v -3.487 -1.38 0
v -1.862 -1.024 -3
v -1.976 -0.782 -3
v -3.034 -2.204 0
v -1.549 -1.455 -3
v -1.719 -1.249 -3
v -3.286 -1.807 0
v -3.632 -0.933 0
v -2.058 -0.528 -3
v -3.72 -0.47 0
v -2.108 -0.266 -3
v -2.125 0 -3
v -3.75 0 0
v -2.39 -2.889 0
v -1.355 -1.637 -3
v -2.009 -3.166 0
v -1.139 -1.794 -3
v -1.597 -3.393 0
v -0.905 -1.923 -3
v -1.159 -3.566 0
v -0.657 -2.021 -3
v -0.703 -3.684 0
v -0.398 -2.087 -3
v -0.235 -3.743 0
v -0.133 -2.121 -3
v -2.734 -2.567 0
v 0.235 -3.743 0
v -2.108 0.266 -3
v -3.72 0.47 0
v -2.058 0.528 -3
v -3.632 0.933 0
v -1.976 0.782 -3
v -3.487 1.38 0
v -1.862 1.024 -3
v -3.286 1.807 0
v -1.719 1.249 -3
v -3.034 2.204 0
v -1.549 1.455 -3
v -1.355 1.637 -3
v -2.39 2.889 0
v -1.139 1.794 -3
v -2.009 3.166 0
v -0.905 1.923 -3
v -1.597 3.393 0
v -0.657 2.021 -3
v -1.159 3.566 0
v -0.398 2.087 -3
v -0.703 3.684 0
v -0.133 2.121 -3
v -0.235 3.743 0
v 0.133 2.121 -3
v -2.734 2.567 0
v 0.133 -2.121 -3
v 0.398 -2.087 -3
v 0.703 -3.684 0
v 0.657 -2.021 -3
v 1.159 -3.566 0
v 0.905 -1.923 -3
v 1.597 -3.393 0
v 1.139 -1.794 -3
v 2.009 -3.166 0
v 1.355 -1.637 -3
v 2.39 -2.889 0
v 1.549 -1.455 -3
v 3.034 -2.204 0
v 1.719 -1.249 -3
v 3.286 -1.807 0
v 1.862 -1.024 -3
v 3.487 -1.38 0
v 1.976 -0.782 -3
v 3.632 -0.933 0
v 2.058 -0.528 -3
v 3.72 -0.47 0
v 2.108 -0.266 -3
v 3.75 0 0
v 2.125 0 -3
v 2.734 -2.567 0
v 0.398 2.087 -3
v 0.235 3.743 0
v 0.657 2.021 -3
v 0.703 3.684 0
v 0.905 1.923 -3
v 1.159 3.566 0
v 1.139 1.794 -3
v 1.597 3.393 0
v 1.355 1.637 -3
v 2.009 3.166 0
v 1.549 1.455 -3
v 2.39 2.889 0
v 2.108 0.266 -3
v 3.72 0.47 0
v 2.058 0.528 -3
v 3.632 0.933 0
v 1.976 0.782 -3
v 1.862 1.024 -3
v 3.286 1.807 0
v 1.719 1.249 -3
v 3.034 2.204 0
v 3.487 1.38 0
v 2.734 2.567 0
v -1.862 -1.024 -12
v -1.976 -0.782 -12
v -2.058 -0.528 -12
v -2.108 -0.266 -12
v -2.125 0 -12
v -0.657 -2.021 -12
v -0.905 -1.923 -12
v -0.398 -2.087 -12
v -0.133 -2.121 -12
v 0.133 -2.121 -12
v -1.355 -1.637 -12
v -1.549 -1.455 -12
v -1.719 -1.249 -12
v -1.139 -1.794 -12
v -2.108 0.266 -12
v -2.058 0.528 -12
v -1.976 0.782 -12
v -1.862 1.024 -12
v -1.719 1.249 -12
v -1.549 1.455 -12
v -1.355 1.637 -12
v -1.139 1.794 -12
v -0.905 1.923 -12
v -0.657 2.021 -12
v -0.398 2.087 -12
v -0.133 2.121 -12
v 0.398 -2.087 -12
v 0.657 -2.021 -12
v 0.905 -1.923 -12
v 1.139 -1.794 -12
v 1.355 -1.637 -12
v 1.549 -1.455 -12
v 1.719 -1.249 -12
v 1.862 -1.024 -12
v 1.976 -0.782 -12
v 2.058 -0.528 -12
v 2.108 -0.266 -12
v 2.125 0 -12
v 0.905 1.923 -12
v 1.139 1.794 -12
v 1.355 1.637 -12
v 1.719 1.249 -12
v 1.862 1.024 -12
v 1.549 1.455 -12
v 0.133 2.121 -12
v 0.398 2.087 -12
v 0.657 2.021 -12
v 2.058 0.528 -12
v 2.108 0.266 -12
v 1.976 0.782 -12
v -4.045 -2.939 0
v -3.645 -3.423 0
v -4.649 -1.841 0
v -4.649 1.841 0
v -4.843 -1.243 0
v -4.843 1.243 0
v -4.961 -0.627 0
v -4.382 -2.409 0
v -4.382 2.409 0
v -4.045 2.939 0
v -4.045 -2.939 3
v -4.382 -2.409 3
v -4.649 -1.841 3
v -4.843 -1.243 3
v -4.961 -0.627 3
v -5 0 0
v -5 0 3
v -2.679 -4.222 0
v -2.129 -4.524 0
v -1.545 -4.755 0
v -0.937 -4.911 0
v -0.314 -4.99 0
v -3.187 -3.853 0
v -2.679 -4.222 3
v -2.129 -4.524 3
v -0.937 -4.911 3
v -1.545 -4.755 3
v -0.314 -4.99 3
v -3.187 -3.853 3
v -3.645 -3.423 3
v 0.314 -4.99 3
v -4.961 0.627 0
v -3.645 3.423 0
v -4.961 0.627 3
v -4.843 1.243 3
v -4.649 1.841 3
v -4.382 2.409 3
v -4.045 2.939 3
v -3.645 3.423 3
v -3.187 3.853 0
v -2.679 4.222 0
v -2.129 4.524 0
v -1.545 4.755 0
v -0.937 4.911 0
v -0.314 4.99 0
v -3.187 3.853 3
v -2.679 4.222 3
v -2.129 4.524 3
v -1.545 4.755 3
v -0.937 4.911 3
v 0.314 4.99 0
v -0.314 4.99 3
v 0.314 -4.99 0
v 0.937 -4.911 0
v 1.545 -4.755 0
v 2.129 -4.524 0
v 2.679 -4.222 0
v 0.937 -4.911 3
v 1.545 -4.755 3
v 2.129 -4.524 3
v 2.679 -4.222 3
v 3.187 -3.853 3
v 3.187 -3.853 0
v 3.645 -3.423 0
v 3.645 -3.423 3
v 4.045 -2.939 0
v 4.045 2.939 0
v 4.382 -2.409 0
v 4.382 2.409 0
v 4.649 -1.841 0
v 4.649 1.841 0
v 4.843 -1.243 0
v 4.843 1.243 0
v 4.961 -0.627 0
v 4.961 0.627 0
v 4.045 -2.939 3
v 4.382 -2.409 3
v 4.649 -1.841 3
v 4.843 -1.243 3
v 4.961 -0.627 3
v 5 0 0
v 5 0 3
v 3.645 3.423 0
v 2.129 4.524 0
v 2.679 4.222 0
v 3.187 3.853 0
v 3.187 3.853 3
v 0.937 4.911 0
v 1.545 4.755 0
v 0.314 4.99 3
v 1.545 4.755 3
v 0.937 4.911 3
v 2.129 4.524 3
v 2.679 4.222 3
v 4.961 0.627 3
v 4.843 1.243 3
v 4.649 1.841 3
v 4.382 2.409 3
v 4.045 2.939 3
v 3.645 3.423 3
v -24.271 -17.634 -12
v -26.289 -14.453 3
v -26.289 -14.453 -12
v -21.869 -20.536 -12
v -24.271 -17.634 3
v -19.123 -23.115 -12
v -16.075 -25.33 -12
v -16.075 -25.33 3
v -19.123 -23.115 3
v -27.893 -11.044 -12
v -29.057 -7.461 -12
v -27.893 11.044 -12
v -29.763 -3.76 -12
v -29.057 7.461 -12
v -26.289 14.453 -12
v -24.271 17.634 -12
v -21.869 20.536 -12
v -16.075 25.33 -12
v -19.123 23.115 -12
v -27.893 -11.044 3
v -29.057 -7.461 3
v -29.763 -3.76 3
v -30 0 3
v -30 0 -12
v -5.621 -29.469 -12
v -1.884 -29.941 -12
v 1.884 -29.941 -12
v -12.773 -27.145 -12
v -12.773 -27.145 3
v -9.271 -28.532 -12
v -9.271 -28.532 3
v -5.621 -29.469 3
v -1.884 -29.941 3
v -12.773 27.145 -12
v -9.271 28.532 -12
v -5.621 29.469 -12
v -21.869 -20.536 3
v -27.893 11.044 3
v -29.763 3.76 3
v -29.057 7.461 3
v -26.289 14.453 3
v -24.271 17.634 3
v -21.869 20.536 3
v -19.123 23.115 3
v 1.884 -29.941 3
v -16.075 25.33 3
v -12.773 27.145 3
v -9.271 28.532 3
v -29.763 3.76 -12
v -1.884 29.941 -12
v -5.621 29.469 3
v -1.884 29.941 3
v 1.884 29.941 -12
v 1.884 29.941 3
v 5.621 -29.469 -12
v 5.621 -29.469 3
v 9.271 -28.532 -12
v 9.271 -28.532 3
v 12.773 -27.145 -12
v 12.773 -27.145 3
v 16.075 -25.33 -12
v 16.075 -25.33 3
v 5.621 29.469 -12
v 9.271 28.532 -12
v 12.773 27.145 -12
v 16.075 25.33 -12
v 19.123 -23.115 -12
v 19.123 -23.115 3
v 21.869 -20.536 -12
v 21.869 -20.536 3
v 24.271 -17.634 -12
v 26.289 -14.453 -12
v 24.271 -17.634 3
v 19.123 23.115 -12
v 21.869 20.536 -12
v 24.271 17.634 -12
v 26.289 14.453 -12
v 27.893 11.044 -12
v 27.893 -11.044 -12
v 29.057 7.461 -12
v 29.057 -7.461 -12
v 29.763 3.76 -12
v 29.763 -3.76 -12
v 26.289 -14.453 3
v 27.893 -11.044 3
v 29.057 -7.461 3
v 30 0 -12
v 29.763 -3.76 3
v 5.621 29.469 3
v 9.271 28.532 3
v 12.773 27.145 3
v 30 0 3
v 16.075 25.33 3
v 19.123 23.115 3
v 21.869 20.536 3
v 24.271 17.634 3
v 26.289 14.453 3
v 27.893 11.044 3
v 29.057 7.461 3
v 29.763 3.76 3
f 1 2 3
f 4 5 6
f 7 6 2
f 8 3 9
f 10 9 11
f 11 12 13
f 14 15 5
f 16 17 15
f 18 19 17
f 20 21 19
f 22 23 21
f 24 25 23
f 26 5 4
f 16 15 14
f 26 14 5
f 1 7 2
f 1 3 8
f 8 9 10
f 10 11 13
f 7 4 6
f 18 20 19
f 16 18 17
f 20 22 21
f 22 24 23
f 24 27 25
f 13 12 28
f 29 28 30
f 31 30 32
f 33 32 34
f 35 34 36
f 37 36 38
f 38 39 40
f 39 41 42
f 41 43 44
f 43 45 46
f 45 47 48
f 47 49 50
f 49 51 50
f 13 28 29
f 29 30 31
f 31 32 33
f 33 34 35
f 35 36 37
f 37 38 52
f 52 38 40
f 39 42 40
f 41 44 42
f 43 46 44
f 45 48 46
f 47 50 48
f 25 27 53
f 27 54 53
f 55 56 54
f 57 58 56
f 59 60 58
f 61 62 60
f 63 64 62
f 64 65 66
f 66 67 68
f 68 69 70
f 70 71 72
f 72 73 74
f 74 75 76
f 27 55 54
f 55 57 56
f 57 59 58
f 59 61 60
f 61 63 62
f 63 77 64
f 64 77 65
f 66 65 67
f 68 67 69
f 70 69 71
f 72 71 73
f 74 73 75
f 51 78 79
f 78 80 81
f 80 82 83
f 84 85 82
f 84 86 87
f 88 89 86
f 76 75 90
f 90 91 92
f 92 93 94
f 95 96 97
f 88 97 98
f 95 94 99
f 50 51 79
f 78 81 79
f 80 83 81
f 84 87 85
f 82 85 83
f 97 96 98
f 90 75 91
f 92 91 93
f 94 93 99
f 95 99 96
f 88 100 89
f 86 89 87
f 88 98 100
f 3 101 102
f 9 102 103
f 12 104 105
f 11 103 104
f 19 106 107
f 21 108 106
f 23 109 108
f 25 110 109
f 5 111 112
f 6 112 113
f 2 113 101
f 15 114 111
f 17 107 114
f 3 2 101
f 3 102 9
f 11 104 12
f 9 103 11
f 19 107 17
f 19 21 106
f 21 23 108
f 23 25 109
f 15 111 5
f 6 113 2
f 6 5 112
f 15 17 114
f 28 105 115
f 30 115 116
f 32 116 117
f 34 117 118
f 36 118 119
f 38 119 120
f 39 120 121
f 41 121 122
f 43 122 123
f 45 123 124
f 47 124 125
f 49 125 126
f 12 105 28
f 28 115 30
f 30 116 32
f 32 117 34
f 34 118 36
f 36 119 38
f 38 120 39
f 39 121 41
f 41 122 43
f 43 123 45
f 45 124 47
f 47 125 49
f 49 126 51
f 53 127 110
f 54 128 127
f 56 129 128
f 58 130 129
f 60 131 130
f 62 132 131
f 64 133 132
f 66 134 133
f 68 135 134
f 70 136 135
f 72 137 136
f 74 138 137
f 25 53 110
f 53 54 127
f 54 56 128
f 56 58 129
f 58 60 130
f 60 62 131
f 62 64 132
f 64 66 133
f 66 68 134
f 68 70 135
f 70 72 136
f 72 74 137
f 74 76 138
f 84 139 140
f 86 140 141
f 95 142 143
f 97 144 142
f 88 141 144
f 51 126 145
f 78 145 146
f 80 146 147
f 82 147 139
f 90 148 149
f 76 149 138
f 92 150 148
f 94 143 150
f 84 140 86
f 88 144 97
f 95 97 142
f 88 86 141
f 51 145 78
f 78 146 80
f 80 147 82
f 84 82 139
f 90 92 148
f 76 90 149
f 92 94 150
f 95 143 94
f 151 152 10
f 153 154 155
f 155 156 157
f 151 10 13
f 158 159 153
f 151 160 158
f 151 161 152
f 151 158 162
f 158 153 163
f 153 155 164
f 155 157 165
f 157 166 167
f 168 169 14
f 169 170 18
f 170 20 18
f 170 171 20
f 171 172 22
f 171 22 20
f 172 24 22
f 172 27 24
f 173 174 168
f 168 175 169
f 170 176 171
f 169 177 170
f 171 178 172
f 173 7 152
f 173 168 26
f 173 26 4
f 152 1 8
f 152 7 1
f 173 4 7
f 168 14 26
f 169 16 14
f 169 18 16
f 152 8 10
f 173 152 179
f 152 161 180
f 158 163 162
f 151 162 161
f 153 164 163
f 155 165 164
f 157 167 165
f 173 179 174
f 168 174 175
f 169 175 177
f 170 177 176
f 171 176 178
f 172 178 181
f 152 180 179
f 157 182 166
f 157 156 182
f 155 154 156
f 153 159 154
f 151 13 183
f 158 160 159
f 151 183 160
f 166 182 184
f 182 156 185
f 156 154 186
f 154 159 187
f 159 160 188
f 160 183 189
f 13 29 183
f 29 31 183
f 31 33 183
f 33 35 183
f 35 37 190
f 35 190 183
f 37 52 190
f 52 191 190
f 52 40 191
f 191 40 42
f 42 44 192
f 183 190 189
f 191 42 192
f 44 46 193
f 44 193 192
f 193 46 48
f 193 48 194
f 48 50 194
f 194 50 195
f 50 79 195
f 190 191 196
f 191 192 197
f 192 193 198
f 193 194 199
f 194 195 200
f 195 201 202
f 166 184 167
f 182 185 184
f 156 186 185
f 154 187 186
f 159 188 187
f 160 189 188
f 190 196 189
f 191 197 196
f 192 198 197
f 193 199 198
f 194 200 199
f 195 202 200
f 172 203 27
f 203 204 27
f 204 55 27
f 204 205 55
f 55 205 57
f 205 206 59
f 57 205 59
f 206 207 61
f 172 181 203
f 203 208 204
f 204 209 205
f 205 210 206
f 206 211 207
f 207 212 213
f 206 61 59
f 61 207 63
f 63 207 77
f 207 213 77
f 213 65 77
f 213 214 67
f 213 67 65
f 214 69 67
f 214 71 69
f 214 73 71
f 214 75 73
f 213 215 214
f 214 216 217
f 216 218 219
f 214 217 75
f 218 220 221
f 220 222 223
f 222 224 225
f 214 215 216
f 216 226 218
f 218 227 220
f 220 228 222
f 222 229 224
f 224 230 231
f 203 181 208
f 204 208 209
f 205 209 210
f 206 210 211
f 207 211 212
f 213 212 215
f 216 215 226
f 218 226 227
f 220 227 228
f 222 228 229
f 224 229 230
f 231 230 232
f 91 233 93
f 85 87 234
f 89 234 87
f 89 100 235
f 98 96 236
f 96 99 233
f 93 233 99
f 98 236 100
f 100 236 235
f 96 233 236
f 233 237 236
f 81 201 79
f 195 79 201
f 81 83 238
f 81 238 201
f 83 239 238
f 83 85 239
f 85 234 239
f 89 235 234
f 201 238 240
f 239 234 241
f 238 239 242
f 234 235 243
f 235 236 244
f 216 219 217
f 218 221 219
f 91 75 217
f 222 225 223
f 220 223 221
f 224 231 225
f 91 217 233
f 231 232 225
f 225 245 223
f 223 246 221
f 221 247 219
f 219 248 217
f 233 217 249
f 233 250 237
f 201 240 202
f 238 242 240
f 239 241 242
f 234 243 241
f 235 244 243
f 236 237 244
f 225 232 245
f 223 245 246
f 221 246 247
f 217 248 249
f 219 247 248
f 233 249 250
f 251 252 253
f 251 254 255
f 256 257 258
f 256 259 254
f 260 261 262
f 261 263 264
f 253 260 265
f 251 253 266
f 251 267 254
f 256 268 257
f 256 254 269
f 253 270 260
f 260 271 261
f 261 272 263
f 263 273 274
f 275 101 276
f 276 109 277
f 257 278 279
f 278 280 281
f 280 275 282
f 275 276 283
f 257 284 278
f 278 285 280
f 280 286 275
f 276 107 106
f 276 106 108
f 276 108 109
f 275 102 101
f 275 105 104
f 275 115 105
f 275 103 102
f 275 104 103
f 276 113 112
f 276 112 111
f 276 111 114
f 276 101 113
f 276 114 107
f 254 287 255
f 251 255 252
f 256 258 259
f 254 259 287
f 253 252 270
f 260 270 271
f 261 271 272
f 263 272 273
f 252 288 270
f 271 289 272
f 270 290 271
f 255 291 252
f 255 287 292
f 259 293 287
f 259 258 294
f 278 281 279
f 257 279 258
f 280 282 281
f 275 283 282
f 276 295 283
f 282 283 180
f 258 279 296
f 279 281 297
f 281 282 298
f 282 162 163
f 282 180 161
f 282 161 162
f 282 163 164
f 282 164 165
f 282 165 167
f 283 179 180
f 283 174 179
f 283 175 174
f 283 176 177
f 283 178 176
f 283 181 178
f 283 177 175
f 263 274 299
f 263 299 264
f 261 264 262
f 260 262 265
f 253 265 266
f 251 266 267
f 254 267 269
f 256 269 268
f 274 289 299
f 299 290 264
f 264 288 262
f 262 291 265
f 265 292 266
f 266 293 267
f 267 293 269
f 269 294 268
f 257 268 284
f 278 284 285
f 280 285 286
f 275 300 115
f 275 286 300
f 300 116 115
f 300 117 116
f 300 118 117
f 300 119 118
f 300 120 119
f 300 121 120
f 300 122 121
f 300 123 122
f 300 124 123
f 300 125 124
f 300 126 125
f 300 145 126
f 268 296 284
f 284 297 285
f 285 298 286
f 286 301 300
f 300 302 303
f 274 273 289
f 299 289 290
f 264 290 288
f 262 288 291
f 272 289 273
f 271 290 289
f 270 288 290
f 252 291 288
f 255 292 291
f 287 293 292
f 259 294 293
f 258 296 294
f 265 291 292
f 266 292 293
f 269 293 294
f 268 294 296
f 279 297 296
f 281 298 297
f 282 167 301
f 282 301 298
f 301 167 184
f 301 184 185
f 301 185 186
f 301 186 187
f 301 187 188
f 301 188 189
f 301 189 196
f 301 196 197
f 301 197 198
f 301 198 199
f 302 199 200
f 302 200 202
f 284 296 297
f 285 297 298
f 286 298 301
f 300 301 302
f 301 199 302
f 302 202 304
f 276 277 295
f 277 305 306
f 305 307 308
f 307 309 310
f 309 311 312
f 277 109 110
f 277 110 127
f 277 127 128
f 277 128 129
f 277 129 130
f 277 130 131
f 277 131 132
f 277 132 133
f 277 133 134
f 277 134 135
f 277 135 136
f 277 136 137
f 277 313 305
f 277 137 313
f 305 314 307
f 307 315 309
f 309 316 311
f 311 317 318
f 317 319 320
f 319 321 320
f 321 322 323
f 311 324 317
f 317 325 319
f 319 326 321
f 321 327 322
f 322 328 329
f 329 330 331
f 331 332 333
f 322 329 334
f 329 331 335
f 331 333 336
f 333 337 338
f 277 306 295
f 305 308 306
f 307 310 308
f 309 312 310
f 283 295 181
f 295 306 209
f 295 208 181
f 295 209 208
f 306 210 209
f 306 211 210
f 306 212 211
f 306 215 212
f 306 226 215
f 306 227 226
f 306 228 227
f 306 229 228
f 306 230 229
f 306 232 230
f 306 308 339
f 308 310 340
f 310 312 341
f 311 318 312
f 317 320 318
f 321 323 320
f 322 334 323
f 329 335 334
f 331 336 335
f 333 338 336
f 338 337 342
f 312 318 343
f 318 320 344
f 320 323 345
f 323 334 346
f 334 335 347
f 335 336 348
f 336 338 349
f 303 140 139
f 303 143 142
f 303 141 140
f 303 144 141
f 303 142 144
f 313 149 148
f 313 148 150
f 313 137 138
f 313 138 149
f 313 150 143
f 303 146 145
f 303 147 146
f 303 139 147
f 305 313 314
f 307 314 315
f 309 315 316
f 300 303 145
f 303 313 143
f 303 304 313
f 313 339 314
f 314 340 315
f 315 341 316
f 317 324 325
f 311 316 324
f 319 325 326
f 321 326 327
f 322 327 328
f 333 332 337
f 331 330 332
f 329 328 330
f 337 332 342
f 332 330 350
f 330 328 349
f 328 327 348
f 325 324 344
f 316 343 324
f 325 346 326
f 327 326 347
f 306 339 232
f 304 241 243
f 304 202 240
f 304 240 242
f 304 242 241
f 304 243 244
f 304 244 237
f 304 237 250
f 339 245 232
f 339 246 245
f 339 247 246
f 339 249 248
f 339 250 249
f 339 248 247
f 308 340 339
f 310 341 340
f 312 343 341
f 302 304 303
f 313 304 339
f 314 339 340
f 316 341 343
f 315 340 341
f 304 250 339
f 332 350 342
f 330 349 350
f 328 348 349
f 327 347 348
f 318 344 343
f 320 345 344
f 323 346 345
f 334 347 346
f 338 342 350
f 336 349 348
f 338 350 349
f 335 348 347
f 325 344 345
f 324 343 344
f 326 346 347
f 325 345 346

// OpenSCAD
$fn = 50;

difference() {
	union() {
		translate(v = [0, 0, -12.0]) {
			cylinder(h = 15, r = 30.0);
		}
	}
	union() {
		translate(v = [0, 0, 0]) {
			rotate(a = [0, 0, 0]) {
				difference() {
					union() {
						translate(v = [0, 0, -15.0]) {
							cylinder(h = 15, r = 2.0);
						}
						translate(v = [0, 0, -3]) {
							cylinder(h = 3, r1 = 2.125, r2 = 3.75);
						}
						translate(v = [0, 0, -15.0]) {
							cylinder(h = 15, r = 2.125);
						}
						translate(v = [0, 0, -15.0]) {
							cylinder(h = 15, r = 2.0);
						}
					}
					union();
				}
			}
		}
		#cylinder(h = 3, r = 5.0);
	}
}
